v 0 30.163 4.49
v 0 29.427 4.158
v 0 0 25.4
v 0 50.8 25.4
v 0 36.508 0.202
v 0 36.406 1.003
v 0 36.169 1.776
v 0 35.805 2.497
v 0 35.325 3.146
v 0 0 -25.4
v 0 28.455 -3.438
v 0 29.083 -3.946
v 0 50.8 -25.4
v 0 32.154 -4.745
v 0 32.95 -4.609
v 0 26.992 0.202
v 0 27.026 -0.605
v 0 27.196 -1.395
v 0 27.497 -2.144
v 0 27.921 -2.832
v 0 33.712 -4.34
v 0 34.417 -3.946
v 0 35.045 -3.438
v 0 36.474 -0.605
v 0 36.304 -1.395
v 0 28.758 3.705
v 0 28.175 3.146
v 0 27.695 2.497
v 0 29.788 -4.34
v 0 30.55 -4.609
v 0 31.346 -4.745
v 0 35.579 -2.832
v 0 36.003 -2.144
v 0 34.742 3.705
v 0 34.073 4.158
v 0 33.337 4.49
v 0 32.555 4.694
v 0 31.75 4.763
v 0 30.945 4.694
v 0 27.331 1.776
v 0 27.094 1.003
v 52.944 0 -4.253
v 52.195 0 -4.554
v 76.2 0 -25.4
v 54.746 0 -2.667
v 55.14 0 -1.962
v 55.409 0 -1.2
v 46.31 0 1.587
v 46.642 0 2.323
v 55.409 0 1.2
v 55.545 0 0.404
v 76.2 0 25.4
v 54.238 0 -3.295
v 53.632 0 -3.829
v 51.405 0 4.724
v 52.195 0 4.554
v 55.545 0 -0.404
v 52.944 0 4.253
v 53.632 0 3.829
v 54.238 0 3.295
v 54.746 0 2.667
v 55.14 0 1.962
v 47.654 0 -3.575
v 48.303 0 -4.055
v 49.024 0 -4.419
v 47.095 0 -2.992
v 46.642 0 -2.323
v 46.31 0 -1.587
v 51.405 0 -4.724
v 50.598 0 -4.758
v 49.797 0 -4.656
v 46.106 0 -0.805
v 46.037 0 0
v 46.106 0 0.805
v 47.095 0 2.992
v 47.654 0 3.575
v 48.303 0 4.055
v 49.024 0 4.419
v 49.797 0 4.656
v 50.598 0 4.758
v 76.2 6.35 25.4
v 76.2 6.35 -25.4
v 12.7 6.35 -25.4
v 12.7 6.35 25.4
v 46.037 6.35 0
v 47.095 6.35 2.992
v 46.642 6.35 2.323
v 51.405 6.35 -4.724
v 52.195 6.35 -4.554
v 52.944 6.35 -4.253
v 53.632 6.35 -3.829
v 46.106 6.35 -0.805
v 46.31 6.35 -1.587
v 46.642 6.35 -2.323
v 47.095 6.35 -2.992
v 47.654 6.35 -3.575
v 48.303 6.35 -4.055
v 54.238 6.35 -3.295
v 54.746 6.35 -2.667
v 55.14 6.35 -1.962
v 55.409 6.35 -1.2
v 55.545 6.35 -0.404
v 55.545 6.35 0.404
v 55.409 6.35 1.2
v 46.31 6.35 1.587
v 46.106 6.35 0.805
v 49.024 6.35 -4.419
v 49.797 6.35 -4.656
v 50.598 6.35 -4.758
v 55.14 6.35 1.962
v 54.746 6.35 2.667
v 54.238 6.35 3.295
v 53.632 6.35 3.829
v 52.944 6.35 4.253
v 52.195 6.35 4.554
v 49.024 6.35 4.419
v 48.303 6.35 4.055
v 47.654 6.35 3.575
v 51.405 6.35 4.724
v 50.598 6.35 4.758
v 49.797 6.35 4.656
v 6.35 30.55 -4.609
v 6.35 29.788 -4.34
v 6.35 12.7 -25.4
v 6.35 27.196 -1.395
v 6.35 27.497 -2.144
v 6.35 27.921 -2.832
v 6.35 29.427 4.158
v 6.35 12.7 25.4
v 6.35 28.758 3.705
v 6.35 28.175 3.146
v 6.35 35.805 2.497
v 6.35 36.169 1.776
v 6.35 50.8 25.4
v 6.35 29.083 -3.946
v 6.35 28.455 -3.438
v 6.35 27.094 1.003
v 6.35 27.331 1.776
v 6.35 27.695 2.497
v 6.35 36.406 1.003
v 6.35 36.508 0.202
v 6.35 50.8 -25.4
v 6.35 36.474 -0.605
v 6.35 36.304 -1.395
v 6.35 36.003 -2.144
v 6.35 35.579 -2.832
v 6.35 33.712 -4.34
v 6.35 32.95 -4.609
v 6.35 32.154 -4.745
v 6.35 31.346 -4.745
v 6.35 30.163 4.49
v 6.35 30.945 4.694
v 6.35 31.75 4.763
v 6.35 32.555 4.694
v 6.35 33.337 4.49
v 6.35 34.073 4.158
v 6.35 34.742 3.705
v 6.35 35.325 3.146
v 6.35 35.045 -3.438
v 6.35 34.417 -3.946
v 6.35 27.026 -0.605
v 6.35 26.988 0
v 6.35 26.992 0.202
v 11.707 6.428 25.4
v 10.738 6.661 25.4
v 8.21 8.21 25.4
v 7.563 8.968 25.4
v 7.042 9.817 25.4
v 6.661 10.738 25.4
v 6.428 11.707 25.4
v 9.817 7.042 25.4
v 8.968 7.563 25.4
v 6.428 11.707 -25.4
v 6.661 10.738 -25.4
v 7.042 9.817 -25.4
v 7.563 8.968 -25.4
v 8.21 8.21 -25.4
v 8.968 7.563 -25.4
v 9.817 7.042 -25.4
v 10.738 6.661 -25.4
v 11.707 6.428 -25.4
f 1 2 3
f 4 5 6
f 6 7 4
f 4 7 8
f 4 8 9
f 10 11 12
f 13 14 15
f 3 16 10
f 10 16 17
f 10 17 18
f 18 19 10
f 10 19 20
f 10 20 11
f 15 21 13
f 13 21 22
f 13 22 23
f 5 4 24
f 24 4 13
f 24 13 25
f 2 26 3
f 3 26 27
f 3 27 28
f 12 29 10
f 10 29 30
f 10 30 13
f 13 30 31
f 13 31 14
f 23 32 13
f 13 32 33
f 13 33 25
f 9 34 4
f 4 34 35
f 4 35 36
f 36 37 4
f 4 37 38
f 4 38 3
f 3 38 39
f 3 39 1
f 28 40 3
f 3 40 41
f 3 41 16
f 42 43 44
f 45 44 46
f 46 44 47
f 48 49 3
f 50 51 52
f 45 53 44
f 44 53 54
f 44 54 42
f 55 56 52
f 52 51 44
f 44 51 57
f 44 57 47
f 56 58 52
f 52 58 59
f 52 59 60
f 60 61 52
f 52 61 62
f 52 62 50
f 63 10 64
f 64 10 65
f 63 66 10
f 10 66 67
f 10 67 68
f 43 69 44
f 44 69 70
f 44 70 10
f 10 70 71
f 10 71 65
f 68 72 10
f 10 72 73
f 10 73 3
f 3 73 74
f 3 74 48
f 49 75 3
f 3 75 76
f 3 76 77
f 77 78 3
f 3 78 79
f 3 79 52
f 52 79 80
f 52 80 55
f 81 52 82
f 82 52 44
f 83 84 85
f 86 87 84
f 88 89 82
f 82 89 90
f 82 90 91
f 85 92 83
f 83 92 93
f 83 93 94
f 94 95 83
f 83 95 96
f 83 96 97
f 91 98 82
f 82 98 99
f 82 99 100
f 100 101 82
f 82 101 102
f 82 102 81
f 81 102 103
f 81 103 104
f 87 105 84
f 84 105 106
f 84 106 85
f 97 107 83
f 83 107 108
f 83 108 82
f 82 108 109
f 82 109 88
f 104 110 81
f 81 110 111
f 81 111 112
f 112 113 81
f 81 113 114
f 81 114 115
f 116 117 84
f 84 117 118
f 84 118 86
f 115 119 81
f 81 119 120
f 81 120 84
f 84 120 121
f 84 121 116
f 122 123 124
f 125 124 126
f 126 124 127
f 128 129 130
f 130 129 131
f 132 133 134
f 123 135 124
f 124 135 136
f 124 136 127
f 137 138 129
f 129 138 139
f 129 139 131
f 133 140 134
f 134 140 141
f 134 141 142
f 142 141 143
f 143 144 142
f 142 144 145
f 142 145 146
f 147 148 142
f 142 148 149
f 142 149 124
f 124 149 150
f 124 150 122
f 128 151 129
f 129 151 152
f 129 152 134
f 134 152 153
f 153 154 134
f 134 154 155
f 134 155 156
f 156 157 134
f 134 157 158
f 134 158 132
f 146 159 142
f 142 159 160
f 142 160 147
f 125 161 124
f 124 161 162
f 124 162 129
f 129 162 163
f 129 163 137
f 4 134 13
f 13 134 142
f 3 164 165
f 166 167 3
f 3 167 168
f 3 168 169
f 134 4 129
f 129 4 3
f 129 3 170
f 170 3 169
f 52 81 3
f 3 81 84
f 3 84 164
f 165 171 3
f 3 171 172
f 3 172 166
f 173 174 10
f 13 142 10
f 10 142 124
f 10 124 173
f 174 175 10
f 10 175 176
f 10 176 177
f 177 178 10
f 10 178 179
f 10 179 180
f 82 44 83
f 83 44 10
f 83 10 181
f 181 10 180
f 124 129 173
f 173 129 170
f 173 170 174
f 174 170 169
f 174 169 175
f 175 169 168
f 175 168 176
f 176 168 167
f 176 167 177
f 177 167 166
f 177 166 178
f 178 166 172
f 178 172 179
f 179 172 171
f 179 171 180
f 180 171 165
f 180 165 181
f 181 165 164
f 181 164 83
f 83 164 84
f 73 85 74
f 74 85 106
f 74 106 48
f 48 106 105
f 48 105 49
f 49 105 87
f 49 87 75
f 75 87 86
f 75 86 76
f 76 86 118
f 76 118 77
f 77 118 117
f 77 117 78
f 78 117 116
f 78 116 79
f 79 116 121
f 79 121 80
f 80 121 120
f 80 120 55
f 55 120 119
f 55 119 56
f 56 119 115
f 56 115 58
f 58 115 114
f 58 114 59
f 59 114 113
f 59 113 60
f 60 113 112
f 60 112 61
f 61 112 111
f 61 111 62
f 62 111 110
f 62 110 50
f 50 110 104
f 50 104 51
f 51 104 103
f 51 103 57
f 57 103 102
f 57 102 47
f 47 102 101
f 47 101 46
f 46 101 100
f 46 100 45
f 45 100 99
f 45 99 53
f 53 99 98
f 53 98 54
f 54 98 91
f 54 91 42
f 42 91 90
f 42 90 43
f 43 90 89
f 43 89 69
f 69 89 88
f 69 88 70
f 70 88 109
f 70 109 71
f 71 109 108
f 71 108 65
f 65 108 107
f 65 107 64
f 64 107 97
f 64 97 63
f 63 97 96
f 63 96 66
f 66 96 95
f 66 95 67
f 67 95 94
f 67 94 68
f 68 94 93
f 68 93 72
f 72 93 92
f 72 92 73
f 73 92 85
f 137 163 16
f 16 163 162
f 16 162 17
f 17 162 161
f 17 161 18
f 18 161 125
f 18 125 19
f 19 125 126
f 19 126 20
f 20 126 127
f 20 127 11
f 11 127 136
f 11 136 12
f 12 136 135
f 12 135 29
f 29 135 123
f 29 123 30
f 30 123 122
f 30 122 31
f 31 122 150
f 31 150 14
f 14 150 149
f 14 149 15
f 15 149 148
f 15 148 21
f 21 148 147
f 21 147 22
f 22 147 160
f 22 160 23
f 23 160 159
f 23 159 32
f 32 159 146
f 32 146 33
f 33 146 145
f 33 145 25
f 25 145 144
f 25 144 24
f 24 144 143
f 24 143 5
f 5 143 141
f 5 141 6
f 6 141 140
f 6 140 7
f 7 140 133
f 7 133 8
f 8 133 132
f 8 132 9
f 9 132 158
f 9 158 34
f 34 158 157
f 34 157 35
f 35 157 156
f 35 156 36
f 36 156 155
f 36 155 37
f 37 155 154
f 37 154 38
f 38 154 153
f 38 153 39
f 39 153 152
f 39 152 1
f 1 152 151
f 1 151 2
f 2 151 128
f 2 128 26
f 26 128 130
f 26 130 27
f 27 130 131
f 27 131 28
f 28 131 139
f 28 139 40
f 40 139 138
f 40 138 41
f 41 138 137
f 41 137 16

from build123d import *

# Parameters (mm, degrees)
BRACKET_DEPTH      = 25.4
FILLET_2_R         = 6.35
SKETCH2_R          = 4.7625
BASE_HOLE_DEPTH    = 92.800885072
SKETCH4_R          = 4.7625
CUT_EXTRUDE2_DEPTH = 96.038097624


with BuildPart() as part:
    # Sketch1 → Bracket (new, symmetric)
    with BuildSketch(Plane.XY):
        Polygon((0, 0), (76.2, 0), (76.2, 6.35), (6.35, 6.35), (6.35, 50.8), (0, 50.8), align=None)
    extrude(amount=BRACKET_DEPTH, both=True)

    # Fillet 2
    fillet_2_edges = [part.edges().sort_by_distance(p)[0] for p in [
        (6.35, 6.35, 0),
    ]]
    fillet(fillet_2_edges, radius=FILLET_2_R)

    # Sketch2 → Base hole (cut, through all)
    with BuildSketch(Plane(origin=(0, 6.35, 0), x_dir=(1, 0, 0), z_dir=(0, 1, 0))):
        with Locations(Location((50.8, 0, 0), (0, 0, 180))):
            Circle(SKETCH2_R)
    extrude(amount=-BASE_HOLE_DEPTH, mode=Mode.SUBTRACT)

    # Sketch4 → Cut-Extrude2 (cut, through all)
    with BuildSketch(Plane.ZY):
        with Locations((0, 31.75)):
            Circle(SKETCH4_R)
    extrude(amount=-CUT_EXTRUDE2_DEPTH, mode=Mode.SUBTRACT)


solid = part.part
